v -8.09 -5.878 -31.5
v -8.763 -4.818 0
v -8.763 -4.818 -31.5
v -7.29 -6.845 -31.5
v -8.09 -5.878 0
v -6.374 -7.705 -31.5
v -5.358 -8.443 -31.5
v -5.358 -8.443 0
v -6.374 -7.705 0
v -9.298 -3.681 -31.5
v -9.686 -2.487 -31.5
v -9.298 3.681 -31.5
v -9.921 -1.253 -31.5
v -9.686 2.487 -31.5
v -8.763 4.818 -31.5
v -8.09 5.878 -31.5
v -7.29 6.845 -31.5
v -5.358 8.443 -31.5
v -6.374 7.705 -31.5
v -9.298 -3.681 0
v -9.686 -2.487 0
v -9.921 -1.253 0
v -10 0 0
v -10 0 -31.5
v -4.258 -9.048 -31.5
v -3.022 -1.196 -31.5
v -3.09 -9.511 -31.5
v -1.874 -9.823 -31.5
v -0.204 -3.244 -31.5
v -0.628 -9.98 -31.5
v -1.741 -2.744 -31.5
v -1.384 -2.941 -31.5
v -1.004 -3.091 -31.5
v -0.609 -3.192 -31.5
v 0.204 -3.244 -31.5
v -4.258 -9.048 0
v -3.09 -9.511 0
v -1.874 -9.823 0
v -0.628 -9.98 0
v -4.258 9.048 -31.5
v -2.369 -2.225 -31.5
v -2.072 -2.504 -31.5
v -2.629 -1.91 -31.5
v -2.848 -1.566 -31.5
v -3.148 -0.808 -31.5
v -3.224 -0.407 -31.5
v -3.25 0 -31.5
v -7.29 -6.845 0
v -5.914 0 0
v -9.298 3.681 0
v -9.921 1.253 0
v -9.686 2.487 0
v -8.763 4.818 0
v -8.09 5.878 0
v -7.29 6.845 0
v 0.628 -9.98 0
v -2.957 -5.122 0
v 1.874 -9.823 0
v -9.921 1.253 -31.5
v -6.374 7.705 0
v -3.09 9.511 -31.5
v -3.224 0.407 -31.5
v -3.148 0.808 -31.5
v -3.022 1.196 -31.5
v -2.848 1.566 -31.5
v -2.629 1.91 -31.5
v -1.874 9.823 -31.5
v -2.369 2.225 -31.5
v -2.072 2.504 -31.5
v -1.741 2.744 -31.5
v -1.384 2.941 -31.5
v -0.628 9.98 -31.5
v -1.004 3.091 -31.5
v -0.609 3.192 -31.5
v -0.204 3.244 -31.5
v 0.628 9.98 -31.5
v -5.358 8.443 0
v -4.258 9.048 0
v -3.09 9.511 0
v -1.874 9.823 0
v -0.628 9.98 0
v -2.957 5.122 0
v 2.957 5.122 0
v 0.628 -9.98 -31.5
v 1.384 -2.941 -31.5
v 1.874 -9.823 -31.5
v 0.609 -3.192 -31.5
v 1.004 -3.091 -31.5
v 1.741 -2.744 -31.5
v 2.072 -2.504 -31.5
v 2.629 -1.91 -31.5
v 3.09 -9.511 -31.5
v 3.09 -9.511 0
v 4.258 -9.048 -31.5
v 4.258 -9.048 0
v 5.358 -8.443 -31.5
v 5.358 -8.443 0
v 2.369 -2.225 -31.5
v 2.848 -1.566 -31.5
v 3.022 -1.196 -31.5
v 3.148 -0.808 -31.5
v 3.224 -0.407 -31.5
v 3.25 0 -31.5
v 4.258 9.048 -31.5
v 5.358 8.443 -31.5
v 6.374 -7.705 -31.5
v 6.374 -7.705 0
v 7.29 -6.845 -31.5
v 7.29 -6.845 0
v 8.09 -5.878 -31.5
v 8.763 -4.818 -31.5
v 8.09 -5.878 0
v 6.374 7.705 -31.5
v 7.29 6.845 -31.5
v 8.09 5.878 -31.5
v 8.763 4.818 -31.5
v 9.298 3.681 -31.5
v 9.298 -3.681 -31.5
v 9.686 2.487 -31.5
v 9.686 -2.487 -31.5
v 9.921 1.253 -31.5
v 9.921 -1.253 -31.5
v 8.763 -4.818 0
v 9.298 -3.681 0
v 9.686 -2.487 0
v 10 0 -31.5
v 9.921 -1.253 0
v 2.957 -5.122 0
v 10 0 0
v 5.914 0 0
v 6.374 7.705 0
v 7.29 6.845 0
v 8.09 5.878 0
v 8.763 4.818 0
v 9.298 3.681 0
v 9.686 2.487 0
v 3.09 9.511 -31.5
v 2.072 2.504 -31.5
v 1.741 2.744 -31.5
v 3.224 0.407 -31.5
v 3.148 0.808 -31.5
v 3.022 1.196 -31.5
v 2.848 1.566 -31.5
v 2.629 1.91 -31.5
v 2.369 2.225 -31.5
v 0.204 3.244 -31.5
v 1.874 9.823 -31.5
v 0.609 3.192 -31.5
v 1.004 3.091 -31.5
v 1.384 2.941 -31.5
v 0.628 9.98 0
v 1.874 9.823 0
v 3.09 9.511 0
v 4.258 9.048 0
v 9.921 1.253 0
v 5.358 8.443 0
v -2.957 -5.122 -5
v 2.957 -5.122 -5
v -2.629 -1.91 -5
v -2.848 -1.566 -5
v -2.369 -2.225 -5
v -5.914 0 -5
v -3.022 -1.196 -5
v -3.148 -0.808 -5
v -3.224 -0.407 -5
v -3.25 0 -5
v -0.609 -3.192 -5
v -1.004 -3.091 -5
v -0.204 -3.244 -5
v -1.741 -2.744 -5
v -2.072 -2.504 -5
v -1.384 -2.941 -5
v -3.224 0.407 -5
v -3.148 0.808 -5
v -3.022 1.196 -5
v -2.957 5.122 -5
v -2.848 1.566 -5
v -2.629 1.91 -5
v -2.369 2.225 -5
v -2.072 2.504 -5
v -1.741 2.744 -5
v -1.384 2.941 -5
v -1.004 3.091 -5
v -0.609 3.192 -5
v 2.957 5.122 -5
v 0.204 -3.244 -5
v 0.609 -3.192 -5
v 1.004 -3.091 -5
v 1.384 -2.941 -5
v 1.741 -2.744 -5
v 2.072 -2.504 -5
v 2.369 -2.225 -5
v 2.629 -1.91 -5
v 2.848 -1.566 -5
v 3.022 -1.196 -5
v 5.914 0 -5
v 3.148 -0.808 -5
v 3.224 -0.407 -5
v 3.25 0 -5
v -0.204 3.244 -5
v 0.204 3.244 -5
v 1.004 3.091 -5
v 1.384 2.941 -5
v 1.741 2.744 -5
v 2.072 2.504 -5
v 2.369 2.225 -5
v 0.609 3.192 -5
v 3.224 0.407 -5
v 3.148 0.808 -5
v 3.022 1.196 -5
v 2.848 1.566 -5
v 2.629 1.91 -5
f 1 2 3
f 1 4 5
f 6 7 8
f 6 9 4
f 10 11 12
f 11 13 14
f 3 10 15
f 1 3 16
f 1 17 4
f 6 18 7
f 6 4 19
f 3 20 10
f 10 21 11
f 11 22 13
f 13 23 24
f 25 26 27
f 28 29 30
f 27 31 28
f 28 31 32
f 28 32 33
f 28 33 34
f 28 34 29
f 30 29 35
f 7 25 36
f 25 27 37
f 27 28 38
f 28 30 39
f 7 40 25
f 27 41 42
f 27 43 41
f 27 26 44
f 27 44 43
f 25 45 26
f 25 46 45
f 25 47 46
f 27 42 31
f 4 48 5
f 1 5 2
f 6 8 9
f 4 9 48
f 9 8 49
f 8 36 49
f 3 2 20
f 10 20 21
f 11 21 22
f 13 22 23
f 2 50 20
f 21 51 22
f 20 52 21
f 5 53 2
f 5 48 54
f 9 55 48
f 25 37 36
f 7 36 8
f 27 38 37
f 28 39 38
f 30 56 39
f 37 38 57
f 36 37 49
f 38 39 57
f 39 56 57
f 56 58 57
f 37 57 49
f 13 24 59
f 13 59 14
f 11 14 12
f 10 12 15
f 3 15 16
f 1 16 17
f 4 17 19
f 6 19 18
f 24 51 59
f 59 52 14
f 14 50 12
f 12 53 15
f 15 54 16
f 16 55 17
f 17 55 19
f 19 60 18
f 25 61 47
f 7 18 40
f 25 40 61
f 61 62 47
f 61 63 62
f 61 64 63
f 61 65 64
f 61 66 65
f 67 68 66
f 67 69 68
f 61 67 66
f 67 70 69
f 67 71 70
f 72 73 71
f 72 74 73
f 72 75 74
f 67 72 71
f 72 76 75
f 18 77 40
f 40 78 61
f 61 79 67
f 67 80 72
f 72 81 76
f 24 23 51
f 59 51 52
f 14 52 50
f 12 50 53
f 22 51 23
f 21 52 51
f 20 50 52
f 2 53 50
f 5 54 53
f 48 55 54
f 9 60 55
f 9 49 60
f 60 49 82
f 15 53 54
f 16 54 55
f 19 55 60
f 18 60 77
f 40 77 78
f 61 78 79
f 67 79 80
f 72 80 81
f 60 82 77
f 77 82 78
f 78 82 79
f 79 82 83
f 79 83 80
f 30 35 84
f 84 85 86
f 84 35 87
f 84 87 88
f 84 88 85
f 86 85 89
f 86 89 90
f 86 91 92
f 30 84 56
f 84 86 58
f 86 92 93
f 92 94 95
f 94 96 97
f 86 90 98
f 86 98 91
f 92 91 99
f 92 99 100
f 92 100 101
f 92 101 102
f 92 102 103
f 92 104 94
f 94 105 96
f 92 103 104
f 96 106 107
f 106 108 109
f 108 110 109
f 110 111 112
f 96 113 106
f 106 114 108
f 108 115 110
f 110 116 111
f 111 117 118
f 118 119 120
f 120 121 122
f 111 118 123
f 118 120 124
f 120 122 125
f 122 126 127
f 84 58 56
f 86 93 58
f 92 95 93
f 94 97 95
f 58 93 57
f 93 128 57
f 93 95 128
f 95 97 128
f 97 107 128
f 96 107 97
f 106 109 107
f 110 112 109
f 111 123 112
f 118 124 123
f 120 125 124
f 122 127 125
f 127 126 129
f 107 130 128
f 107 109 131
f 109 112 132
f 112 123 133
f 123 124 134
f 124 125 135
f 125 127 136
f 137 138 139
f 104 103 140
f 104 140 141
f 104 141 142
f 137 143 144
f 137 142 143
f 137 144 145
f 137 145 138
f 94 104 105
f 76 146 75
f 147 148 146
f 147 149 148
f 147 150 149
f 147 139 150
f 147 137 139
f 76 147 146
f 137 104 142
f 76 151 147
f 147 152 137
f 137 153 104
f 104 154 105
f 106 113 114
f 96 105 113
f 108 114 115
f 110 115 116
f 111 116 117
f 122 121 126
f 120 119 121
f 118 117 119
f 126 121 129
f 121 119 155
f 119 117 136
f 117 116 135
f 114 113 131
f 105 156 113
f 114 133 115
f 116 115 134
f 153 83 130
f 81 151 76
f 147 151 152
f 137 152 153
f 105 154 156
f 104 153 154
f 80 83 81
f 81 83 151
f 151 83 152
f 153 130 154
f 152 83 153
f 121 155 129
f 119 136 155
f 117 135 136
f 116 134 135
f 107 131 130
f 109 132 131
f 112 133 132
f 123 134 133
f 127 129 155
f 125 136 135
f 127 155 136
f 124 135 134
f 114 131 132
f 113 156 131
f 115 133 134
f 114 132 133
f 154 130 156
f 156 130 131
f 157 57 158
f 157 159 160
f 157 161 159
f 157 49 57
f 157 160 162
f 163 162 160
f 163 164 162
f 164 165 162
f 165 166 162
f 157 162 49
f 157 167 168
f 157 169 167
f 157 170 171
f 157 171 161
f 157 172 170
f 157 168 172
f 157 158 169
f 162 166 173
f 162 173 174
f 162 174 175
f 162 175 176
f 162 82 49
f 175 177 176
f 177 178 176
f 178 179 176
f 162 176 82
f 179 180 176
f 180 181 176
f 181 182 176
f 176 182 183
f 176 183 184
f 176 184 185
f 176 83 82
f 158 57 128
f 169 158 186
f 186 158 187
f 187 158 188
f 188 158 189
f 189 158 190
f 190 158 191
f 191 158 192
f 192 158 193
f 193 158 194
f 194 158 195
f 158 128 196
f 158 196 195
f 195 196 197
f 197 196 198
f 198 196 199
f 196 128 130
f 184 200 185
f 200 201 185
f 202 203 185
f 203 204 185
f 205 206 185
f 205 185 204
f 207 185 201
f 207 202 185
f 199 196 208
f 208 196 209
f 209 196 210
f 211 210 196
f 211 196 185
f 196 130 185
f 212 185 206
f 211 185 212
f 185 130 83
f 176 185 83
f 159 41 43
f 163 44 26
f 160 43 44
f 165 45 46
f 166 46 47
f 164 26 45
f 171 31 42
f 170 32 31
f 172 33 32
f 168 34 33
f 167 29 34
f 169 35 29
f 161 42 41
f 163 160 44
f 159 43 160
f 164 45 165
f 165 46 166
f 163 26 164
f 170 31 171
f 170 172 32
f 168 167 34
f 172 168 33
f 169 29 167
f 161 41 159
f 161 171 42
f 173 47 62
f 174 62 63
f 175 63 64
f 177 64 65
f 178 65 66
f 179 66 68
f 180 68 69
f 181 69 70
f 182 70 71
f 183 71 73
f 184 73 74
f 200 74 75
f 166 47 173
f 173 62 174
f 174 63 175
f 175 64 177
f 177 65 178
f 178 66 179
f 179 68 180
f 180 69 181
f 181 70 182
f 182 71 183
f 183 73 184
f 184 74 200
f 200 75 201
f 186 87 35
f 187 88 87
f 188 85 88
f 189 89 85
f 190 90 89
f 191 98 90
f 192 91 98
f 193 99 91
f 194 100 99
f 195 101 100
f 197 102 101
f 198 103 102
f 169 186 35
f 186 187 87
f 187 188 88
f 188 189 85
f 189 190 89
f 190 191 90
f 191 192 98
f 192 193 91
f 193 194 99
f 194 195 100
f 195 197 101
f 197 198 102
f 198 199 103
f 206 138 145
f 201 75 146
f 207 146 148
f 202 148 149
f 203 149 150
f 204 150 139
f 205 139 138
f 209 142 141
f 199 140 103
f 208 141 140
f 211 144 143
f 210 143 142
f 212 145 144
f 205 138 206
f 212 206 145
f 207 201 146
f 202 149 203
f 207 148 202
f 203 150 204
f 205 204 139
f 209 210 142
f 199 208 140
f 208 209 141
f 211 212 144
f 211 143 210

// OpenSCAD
$fn = 50;


difference() {
	union() {
		translate(v = [0, 0, -31.5000000000]) {
			cylinder(h = 31.5000000000, r = 10.0000000000);
		}
	}
	union() {
		translate(v = [0, 0, 0]) {
			rotate(a = [0, 0, 0]) {
				difference() {
					union() {
						translate(v = [0, 0, -5]) {
							linear_extrude(height = 5) {
								polygon(points = [[5.9142500000, 0.0000000000], [2.9571250000, 5.1218907443], [-2.9571250000, 5.1218907443], [-5.9142500000, 0.0000000000], [-2.9571250000, -5.1218907443], [2.9571250000, -5.1218907443]]);
							}
						}
					}
					union();
				}
			}
		}
		#translate(v = [0, 0, -100.0000000000]) {
			cylinder(h = 200, r = 3.2500000000);
		}
	}
}
